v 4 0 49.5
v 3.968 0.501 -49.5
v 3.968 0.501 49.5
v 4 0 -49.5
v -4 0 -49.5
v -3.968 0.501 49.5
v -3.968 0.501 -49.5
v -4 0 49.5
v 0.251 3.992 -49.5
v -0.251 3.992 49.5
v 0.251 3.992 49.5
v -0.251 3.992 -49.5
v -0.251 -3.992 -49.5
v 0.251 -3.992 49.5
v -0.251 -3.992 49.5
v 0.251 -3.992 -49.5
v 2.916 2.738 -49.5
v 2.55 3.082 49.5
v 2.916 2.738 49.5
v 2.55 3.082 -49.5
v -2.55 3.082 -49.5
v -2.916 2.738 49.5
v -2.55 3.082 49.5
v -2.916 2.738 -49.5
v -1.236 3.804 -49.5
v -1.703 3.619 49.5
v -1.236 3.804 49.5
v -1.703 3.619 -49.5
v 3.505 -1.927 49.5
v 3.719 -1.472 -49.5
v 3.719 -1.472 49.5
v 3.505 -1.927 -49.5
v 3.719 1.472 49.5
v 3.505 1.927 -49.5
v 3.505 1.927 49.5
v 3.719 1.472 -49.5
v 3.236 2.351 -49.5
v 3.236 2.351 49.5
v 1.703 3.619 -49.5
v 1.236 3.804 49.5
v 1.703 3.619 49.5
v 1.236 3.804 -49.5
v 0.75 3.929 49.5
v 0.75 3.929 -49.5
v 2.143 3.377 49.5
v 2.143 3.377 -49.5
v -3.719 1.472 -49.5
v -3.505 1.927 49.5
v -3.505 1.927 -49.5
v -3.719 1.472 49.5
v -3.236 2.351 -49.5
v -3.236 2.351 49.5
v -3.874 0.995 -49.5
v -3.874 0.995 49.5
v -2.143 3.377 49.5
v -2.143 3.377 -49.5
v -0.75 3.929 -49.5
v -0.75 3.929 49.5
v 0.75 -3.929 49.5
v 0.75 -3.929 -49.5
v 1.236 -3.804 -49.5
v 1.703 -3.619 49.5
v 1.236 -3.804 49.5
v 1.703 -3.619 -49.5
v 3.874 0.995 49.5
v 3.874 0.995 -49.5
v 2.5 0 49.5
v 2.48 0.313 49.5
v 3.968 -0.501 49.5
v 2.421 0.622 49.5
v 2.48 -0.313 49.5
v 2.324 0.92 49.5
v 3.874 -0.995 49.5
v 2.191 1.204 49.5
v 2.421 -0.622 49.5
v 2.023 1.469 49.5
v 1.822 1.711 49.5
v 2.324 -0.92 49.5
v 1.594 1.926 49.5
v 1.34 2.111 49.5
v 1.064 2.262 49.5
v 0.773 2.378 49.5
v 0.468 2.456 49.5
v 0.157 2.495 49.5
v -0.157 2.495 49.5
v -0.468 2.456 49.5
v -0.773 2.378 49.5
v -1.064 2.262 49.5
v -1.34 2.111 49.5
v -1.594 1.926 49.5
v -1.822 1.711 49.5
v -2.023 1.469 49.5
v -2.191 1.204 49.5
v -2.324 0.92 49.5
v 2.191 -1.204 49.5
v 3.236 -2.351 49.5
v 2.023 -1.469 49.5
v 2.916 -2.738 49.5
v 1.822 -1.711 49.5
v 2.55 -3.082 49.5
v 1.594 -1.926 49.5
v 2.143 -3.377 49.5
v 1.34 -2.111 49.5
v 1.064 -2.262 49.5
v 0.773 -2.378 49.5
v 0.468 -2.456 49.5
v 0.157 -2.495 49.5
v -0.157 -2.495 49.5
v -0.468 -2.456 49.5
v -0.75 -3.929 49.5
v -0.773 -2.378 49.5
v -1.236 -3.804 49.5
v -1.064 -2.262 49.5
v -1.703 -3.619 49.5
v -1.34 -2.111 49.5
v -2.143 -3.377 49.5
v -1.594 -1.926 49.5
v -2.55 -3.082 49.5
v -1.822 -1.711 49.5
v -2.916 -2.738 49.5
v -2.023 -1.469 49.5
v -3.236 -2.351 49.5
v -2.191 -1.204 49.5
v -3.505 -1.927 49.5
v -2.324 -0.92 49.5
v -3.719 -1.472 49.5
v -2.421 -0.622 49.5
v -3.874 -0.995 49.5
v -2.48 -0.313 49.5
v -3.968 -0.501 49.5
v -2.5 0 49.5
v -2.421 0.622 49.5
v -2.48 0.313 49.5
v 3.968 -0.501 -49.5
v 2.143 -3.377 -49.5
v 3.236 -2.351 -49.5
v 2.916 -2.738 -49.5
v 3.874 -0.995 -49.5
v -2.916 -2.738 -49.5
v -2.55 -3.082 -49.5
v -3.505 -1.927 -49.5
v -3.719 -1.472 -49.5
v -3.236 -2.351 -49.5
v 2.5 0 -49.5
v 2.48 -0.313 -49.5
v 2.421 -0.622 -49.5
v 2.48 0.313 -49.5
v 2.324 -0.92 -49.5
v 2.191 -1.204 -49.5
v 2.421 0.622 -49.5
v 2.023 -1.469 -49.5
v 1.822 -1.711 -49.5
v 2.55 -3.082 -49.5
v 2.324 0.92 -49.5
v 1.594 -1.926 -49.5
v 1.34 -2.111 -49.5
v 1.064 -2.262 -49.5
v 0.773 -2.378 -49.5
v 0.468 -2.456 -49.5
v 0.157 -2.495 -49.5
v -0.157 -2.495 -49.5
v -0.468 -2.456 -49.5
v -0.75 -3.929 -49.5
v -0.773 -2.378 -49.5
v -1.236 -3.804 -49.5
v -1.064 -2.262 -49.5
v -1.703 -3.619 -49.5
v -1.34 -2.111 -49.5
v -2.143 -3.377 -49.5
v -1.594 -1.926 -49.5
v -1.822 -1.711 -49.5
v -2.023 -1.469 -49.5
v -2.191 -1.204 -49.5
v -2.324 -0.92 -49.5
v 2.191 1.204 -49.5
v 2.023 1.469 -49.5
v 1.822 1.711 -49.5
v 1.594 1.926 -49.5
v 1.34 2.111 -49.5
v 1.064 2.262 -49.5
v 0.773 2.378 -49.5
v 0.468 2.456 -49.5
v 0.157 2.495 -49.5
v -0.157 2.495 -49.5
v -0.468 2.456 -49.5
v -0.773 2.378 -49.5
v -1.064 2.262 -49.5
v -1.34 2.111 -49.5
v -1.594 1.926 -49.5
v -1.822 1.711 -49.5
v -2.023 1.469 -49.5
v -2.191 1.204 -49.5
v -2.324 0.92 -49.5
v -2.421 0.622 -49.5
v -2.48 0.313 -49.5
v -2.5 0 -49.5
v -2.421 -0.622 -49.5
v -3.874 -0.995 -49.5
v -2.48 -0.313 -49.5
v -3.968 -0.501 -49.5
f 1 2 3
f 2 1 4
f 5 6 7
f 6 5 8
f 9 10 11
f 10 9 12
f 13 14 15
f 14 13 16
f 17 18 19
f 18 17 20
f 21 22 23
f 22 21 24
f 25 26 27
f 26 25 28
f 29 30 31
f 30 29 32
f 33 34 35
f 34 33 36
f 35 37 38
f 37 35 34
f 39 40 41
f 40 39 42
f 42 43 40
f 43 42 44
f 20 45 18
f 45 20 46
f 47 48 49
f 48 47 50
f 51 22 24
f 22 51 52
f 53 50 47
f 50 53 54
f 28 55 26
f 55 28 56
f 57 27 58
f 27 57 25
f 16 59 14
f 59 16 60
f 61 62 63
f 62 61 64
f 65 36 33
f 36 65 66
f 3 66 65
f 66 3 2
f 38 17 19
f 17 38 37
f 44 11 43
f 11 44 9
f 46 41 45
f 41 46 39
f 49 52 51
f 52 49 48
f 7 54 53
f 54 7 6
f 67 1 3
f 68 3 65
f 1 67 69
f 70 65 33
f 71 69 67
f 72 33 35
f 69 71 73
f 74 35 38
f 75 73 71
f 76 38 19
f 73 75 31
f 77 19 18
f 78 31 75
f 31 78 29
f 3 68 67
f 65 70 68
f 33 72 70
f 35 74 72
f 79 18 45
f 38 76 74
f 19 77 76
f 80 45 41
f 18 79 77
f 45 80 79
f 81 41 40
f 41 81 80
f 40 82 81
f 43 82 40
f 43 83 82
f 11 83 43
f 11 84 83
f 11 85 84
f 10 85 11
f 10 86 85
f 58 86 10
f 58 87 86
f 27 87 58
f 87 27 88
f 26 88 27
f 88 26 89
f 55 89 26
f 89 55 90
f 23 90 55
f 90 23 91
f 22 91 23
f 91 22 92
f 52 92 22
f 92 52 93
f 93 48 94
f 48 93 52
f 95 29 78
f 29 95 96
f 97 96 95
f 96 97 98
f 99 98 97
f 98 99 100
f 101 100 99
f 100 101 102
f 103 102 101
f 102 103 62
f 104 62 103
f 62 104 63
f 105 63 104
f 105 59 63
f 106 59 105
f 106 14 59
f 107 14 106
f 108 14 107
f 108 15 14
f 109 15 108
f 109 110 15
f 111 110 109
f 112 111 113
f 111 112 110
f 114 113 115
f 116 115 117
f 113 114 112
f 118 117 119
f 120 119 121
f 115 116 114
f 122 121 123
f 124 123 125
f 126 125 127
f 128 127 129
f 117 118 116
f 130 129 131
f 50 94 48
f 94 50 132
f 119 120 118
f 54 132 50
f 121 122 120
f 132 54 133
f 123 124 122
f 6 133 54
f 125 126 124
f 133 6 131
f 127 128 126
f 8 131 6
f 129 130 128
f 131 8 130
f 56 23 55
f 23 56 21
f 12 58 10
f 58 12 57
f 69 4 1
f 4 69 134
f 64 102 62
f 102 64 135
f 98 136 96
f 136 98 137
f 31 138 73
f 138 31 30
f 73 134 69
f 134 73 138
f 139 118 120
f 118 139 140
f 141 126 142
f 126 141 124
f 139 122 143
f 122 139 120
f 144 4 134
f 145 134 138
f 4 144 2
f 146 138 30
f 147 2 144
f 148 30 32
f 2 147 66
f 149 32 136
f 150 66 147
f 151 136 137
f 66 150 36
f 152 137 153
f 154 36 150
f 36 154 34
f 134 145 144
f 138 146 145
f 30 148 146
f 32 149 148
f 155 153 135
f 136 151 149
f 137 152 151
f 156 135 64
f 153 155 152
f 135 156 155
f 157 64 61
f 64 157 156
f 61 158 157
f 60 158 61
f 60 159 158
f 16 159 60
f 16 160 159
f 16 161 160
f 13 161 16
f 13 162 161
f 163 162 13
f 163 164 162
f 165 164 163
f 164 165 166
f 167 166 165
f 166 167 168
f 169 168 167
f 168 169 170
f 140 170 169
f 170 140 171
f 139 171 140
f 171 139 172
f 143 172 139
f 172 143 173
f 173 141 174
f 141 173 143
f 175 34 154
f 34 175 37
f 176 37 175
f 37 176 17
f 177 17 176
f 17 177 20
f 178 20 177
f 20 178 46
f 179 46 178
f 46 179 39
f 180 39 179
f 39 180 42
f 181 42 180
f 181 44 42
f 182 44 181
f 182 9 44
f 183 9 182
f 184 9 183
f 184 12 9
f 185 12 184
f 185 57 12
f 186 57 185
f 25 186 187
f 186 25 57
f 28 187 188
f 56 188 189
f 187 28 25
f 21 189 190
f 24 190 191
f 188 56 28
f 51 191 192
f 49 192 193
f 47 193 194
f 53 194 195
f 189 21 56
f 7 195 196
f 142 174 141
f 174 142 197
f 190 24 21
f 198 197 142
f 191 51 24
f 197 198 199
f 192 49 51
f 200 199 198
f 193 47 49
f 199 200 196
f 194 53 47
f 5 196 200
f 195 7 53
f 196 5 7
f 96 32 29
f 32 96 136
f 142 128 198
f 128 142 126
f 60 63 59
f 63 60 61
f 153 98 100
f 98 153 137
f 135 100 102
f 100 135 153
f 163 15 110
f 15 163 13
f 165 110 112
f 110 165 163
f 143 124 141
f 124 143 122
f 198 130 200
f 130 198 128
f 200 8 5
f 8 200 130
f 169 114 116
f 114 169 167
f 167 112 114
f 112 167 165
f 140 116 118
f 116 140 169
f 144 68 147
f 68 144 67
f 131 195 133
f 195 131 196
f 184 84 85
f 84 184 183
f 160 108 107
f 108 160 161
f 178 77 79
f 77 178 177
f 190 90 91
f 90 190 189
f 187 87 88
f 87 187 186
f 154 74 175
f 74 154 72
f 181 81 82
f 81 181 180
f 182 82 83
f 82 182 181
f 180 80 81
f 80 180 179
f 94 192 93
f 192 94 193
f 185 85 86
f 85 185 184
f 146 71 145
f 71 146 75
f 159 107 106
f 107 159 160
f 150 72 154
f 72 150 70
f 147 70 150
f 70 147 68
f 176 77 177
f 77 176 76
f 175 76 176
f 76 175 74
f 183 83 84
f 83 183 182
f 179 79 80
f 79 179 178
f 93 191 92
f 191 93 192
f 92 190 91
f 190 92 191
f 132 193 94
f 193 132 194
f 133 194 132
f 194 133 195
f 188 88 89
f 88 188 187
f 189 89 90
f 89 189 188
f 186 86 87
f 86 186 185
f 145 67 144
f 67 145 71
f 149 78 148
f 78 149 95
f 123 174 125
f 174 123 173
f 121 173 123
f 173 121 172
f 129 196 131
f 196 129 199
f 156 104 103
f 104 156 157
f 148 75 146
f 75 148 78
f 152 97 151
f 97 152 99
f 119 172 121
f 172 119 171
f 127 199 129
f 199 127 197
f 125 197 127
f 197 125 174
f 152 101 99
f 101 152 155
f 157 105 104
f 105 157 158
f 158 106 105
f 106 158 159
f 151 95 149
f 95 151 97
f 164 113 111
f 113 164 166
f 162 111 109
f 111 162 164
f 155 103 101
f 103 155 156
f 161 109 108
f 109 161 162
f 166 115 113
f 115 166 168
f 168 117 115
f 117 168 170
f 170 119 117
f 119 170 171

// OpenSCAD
$fn = 50;


difference() {
	union() {
		translate(v = [0, 0, -49.5000000000]) {
			cylinder(h = 99, r = 4.0000000000);
		}
	}
	union() {
		translate(v = [0, 0, -100.0000000000]) {
			cylinder(h = 200, r = 2.5000000000);
		}
	}
}
